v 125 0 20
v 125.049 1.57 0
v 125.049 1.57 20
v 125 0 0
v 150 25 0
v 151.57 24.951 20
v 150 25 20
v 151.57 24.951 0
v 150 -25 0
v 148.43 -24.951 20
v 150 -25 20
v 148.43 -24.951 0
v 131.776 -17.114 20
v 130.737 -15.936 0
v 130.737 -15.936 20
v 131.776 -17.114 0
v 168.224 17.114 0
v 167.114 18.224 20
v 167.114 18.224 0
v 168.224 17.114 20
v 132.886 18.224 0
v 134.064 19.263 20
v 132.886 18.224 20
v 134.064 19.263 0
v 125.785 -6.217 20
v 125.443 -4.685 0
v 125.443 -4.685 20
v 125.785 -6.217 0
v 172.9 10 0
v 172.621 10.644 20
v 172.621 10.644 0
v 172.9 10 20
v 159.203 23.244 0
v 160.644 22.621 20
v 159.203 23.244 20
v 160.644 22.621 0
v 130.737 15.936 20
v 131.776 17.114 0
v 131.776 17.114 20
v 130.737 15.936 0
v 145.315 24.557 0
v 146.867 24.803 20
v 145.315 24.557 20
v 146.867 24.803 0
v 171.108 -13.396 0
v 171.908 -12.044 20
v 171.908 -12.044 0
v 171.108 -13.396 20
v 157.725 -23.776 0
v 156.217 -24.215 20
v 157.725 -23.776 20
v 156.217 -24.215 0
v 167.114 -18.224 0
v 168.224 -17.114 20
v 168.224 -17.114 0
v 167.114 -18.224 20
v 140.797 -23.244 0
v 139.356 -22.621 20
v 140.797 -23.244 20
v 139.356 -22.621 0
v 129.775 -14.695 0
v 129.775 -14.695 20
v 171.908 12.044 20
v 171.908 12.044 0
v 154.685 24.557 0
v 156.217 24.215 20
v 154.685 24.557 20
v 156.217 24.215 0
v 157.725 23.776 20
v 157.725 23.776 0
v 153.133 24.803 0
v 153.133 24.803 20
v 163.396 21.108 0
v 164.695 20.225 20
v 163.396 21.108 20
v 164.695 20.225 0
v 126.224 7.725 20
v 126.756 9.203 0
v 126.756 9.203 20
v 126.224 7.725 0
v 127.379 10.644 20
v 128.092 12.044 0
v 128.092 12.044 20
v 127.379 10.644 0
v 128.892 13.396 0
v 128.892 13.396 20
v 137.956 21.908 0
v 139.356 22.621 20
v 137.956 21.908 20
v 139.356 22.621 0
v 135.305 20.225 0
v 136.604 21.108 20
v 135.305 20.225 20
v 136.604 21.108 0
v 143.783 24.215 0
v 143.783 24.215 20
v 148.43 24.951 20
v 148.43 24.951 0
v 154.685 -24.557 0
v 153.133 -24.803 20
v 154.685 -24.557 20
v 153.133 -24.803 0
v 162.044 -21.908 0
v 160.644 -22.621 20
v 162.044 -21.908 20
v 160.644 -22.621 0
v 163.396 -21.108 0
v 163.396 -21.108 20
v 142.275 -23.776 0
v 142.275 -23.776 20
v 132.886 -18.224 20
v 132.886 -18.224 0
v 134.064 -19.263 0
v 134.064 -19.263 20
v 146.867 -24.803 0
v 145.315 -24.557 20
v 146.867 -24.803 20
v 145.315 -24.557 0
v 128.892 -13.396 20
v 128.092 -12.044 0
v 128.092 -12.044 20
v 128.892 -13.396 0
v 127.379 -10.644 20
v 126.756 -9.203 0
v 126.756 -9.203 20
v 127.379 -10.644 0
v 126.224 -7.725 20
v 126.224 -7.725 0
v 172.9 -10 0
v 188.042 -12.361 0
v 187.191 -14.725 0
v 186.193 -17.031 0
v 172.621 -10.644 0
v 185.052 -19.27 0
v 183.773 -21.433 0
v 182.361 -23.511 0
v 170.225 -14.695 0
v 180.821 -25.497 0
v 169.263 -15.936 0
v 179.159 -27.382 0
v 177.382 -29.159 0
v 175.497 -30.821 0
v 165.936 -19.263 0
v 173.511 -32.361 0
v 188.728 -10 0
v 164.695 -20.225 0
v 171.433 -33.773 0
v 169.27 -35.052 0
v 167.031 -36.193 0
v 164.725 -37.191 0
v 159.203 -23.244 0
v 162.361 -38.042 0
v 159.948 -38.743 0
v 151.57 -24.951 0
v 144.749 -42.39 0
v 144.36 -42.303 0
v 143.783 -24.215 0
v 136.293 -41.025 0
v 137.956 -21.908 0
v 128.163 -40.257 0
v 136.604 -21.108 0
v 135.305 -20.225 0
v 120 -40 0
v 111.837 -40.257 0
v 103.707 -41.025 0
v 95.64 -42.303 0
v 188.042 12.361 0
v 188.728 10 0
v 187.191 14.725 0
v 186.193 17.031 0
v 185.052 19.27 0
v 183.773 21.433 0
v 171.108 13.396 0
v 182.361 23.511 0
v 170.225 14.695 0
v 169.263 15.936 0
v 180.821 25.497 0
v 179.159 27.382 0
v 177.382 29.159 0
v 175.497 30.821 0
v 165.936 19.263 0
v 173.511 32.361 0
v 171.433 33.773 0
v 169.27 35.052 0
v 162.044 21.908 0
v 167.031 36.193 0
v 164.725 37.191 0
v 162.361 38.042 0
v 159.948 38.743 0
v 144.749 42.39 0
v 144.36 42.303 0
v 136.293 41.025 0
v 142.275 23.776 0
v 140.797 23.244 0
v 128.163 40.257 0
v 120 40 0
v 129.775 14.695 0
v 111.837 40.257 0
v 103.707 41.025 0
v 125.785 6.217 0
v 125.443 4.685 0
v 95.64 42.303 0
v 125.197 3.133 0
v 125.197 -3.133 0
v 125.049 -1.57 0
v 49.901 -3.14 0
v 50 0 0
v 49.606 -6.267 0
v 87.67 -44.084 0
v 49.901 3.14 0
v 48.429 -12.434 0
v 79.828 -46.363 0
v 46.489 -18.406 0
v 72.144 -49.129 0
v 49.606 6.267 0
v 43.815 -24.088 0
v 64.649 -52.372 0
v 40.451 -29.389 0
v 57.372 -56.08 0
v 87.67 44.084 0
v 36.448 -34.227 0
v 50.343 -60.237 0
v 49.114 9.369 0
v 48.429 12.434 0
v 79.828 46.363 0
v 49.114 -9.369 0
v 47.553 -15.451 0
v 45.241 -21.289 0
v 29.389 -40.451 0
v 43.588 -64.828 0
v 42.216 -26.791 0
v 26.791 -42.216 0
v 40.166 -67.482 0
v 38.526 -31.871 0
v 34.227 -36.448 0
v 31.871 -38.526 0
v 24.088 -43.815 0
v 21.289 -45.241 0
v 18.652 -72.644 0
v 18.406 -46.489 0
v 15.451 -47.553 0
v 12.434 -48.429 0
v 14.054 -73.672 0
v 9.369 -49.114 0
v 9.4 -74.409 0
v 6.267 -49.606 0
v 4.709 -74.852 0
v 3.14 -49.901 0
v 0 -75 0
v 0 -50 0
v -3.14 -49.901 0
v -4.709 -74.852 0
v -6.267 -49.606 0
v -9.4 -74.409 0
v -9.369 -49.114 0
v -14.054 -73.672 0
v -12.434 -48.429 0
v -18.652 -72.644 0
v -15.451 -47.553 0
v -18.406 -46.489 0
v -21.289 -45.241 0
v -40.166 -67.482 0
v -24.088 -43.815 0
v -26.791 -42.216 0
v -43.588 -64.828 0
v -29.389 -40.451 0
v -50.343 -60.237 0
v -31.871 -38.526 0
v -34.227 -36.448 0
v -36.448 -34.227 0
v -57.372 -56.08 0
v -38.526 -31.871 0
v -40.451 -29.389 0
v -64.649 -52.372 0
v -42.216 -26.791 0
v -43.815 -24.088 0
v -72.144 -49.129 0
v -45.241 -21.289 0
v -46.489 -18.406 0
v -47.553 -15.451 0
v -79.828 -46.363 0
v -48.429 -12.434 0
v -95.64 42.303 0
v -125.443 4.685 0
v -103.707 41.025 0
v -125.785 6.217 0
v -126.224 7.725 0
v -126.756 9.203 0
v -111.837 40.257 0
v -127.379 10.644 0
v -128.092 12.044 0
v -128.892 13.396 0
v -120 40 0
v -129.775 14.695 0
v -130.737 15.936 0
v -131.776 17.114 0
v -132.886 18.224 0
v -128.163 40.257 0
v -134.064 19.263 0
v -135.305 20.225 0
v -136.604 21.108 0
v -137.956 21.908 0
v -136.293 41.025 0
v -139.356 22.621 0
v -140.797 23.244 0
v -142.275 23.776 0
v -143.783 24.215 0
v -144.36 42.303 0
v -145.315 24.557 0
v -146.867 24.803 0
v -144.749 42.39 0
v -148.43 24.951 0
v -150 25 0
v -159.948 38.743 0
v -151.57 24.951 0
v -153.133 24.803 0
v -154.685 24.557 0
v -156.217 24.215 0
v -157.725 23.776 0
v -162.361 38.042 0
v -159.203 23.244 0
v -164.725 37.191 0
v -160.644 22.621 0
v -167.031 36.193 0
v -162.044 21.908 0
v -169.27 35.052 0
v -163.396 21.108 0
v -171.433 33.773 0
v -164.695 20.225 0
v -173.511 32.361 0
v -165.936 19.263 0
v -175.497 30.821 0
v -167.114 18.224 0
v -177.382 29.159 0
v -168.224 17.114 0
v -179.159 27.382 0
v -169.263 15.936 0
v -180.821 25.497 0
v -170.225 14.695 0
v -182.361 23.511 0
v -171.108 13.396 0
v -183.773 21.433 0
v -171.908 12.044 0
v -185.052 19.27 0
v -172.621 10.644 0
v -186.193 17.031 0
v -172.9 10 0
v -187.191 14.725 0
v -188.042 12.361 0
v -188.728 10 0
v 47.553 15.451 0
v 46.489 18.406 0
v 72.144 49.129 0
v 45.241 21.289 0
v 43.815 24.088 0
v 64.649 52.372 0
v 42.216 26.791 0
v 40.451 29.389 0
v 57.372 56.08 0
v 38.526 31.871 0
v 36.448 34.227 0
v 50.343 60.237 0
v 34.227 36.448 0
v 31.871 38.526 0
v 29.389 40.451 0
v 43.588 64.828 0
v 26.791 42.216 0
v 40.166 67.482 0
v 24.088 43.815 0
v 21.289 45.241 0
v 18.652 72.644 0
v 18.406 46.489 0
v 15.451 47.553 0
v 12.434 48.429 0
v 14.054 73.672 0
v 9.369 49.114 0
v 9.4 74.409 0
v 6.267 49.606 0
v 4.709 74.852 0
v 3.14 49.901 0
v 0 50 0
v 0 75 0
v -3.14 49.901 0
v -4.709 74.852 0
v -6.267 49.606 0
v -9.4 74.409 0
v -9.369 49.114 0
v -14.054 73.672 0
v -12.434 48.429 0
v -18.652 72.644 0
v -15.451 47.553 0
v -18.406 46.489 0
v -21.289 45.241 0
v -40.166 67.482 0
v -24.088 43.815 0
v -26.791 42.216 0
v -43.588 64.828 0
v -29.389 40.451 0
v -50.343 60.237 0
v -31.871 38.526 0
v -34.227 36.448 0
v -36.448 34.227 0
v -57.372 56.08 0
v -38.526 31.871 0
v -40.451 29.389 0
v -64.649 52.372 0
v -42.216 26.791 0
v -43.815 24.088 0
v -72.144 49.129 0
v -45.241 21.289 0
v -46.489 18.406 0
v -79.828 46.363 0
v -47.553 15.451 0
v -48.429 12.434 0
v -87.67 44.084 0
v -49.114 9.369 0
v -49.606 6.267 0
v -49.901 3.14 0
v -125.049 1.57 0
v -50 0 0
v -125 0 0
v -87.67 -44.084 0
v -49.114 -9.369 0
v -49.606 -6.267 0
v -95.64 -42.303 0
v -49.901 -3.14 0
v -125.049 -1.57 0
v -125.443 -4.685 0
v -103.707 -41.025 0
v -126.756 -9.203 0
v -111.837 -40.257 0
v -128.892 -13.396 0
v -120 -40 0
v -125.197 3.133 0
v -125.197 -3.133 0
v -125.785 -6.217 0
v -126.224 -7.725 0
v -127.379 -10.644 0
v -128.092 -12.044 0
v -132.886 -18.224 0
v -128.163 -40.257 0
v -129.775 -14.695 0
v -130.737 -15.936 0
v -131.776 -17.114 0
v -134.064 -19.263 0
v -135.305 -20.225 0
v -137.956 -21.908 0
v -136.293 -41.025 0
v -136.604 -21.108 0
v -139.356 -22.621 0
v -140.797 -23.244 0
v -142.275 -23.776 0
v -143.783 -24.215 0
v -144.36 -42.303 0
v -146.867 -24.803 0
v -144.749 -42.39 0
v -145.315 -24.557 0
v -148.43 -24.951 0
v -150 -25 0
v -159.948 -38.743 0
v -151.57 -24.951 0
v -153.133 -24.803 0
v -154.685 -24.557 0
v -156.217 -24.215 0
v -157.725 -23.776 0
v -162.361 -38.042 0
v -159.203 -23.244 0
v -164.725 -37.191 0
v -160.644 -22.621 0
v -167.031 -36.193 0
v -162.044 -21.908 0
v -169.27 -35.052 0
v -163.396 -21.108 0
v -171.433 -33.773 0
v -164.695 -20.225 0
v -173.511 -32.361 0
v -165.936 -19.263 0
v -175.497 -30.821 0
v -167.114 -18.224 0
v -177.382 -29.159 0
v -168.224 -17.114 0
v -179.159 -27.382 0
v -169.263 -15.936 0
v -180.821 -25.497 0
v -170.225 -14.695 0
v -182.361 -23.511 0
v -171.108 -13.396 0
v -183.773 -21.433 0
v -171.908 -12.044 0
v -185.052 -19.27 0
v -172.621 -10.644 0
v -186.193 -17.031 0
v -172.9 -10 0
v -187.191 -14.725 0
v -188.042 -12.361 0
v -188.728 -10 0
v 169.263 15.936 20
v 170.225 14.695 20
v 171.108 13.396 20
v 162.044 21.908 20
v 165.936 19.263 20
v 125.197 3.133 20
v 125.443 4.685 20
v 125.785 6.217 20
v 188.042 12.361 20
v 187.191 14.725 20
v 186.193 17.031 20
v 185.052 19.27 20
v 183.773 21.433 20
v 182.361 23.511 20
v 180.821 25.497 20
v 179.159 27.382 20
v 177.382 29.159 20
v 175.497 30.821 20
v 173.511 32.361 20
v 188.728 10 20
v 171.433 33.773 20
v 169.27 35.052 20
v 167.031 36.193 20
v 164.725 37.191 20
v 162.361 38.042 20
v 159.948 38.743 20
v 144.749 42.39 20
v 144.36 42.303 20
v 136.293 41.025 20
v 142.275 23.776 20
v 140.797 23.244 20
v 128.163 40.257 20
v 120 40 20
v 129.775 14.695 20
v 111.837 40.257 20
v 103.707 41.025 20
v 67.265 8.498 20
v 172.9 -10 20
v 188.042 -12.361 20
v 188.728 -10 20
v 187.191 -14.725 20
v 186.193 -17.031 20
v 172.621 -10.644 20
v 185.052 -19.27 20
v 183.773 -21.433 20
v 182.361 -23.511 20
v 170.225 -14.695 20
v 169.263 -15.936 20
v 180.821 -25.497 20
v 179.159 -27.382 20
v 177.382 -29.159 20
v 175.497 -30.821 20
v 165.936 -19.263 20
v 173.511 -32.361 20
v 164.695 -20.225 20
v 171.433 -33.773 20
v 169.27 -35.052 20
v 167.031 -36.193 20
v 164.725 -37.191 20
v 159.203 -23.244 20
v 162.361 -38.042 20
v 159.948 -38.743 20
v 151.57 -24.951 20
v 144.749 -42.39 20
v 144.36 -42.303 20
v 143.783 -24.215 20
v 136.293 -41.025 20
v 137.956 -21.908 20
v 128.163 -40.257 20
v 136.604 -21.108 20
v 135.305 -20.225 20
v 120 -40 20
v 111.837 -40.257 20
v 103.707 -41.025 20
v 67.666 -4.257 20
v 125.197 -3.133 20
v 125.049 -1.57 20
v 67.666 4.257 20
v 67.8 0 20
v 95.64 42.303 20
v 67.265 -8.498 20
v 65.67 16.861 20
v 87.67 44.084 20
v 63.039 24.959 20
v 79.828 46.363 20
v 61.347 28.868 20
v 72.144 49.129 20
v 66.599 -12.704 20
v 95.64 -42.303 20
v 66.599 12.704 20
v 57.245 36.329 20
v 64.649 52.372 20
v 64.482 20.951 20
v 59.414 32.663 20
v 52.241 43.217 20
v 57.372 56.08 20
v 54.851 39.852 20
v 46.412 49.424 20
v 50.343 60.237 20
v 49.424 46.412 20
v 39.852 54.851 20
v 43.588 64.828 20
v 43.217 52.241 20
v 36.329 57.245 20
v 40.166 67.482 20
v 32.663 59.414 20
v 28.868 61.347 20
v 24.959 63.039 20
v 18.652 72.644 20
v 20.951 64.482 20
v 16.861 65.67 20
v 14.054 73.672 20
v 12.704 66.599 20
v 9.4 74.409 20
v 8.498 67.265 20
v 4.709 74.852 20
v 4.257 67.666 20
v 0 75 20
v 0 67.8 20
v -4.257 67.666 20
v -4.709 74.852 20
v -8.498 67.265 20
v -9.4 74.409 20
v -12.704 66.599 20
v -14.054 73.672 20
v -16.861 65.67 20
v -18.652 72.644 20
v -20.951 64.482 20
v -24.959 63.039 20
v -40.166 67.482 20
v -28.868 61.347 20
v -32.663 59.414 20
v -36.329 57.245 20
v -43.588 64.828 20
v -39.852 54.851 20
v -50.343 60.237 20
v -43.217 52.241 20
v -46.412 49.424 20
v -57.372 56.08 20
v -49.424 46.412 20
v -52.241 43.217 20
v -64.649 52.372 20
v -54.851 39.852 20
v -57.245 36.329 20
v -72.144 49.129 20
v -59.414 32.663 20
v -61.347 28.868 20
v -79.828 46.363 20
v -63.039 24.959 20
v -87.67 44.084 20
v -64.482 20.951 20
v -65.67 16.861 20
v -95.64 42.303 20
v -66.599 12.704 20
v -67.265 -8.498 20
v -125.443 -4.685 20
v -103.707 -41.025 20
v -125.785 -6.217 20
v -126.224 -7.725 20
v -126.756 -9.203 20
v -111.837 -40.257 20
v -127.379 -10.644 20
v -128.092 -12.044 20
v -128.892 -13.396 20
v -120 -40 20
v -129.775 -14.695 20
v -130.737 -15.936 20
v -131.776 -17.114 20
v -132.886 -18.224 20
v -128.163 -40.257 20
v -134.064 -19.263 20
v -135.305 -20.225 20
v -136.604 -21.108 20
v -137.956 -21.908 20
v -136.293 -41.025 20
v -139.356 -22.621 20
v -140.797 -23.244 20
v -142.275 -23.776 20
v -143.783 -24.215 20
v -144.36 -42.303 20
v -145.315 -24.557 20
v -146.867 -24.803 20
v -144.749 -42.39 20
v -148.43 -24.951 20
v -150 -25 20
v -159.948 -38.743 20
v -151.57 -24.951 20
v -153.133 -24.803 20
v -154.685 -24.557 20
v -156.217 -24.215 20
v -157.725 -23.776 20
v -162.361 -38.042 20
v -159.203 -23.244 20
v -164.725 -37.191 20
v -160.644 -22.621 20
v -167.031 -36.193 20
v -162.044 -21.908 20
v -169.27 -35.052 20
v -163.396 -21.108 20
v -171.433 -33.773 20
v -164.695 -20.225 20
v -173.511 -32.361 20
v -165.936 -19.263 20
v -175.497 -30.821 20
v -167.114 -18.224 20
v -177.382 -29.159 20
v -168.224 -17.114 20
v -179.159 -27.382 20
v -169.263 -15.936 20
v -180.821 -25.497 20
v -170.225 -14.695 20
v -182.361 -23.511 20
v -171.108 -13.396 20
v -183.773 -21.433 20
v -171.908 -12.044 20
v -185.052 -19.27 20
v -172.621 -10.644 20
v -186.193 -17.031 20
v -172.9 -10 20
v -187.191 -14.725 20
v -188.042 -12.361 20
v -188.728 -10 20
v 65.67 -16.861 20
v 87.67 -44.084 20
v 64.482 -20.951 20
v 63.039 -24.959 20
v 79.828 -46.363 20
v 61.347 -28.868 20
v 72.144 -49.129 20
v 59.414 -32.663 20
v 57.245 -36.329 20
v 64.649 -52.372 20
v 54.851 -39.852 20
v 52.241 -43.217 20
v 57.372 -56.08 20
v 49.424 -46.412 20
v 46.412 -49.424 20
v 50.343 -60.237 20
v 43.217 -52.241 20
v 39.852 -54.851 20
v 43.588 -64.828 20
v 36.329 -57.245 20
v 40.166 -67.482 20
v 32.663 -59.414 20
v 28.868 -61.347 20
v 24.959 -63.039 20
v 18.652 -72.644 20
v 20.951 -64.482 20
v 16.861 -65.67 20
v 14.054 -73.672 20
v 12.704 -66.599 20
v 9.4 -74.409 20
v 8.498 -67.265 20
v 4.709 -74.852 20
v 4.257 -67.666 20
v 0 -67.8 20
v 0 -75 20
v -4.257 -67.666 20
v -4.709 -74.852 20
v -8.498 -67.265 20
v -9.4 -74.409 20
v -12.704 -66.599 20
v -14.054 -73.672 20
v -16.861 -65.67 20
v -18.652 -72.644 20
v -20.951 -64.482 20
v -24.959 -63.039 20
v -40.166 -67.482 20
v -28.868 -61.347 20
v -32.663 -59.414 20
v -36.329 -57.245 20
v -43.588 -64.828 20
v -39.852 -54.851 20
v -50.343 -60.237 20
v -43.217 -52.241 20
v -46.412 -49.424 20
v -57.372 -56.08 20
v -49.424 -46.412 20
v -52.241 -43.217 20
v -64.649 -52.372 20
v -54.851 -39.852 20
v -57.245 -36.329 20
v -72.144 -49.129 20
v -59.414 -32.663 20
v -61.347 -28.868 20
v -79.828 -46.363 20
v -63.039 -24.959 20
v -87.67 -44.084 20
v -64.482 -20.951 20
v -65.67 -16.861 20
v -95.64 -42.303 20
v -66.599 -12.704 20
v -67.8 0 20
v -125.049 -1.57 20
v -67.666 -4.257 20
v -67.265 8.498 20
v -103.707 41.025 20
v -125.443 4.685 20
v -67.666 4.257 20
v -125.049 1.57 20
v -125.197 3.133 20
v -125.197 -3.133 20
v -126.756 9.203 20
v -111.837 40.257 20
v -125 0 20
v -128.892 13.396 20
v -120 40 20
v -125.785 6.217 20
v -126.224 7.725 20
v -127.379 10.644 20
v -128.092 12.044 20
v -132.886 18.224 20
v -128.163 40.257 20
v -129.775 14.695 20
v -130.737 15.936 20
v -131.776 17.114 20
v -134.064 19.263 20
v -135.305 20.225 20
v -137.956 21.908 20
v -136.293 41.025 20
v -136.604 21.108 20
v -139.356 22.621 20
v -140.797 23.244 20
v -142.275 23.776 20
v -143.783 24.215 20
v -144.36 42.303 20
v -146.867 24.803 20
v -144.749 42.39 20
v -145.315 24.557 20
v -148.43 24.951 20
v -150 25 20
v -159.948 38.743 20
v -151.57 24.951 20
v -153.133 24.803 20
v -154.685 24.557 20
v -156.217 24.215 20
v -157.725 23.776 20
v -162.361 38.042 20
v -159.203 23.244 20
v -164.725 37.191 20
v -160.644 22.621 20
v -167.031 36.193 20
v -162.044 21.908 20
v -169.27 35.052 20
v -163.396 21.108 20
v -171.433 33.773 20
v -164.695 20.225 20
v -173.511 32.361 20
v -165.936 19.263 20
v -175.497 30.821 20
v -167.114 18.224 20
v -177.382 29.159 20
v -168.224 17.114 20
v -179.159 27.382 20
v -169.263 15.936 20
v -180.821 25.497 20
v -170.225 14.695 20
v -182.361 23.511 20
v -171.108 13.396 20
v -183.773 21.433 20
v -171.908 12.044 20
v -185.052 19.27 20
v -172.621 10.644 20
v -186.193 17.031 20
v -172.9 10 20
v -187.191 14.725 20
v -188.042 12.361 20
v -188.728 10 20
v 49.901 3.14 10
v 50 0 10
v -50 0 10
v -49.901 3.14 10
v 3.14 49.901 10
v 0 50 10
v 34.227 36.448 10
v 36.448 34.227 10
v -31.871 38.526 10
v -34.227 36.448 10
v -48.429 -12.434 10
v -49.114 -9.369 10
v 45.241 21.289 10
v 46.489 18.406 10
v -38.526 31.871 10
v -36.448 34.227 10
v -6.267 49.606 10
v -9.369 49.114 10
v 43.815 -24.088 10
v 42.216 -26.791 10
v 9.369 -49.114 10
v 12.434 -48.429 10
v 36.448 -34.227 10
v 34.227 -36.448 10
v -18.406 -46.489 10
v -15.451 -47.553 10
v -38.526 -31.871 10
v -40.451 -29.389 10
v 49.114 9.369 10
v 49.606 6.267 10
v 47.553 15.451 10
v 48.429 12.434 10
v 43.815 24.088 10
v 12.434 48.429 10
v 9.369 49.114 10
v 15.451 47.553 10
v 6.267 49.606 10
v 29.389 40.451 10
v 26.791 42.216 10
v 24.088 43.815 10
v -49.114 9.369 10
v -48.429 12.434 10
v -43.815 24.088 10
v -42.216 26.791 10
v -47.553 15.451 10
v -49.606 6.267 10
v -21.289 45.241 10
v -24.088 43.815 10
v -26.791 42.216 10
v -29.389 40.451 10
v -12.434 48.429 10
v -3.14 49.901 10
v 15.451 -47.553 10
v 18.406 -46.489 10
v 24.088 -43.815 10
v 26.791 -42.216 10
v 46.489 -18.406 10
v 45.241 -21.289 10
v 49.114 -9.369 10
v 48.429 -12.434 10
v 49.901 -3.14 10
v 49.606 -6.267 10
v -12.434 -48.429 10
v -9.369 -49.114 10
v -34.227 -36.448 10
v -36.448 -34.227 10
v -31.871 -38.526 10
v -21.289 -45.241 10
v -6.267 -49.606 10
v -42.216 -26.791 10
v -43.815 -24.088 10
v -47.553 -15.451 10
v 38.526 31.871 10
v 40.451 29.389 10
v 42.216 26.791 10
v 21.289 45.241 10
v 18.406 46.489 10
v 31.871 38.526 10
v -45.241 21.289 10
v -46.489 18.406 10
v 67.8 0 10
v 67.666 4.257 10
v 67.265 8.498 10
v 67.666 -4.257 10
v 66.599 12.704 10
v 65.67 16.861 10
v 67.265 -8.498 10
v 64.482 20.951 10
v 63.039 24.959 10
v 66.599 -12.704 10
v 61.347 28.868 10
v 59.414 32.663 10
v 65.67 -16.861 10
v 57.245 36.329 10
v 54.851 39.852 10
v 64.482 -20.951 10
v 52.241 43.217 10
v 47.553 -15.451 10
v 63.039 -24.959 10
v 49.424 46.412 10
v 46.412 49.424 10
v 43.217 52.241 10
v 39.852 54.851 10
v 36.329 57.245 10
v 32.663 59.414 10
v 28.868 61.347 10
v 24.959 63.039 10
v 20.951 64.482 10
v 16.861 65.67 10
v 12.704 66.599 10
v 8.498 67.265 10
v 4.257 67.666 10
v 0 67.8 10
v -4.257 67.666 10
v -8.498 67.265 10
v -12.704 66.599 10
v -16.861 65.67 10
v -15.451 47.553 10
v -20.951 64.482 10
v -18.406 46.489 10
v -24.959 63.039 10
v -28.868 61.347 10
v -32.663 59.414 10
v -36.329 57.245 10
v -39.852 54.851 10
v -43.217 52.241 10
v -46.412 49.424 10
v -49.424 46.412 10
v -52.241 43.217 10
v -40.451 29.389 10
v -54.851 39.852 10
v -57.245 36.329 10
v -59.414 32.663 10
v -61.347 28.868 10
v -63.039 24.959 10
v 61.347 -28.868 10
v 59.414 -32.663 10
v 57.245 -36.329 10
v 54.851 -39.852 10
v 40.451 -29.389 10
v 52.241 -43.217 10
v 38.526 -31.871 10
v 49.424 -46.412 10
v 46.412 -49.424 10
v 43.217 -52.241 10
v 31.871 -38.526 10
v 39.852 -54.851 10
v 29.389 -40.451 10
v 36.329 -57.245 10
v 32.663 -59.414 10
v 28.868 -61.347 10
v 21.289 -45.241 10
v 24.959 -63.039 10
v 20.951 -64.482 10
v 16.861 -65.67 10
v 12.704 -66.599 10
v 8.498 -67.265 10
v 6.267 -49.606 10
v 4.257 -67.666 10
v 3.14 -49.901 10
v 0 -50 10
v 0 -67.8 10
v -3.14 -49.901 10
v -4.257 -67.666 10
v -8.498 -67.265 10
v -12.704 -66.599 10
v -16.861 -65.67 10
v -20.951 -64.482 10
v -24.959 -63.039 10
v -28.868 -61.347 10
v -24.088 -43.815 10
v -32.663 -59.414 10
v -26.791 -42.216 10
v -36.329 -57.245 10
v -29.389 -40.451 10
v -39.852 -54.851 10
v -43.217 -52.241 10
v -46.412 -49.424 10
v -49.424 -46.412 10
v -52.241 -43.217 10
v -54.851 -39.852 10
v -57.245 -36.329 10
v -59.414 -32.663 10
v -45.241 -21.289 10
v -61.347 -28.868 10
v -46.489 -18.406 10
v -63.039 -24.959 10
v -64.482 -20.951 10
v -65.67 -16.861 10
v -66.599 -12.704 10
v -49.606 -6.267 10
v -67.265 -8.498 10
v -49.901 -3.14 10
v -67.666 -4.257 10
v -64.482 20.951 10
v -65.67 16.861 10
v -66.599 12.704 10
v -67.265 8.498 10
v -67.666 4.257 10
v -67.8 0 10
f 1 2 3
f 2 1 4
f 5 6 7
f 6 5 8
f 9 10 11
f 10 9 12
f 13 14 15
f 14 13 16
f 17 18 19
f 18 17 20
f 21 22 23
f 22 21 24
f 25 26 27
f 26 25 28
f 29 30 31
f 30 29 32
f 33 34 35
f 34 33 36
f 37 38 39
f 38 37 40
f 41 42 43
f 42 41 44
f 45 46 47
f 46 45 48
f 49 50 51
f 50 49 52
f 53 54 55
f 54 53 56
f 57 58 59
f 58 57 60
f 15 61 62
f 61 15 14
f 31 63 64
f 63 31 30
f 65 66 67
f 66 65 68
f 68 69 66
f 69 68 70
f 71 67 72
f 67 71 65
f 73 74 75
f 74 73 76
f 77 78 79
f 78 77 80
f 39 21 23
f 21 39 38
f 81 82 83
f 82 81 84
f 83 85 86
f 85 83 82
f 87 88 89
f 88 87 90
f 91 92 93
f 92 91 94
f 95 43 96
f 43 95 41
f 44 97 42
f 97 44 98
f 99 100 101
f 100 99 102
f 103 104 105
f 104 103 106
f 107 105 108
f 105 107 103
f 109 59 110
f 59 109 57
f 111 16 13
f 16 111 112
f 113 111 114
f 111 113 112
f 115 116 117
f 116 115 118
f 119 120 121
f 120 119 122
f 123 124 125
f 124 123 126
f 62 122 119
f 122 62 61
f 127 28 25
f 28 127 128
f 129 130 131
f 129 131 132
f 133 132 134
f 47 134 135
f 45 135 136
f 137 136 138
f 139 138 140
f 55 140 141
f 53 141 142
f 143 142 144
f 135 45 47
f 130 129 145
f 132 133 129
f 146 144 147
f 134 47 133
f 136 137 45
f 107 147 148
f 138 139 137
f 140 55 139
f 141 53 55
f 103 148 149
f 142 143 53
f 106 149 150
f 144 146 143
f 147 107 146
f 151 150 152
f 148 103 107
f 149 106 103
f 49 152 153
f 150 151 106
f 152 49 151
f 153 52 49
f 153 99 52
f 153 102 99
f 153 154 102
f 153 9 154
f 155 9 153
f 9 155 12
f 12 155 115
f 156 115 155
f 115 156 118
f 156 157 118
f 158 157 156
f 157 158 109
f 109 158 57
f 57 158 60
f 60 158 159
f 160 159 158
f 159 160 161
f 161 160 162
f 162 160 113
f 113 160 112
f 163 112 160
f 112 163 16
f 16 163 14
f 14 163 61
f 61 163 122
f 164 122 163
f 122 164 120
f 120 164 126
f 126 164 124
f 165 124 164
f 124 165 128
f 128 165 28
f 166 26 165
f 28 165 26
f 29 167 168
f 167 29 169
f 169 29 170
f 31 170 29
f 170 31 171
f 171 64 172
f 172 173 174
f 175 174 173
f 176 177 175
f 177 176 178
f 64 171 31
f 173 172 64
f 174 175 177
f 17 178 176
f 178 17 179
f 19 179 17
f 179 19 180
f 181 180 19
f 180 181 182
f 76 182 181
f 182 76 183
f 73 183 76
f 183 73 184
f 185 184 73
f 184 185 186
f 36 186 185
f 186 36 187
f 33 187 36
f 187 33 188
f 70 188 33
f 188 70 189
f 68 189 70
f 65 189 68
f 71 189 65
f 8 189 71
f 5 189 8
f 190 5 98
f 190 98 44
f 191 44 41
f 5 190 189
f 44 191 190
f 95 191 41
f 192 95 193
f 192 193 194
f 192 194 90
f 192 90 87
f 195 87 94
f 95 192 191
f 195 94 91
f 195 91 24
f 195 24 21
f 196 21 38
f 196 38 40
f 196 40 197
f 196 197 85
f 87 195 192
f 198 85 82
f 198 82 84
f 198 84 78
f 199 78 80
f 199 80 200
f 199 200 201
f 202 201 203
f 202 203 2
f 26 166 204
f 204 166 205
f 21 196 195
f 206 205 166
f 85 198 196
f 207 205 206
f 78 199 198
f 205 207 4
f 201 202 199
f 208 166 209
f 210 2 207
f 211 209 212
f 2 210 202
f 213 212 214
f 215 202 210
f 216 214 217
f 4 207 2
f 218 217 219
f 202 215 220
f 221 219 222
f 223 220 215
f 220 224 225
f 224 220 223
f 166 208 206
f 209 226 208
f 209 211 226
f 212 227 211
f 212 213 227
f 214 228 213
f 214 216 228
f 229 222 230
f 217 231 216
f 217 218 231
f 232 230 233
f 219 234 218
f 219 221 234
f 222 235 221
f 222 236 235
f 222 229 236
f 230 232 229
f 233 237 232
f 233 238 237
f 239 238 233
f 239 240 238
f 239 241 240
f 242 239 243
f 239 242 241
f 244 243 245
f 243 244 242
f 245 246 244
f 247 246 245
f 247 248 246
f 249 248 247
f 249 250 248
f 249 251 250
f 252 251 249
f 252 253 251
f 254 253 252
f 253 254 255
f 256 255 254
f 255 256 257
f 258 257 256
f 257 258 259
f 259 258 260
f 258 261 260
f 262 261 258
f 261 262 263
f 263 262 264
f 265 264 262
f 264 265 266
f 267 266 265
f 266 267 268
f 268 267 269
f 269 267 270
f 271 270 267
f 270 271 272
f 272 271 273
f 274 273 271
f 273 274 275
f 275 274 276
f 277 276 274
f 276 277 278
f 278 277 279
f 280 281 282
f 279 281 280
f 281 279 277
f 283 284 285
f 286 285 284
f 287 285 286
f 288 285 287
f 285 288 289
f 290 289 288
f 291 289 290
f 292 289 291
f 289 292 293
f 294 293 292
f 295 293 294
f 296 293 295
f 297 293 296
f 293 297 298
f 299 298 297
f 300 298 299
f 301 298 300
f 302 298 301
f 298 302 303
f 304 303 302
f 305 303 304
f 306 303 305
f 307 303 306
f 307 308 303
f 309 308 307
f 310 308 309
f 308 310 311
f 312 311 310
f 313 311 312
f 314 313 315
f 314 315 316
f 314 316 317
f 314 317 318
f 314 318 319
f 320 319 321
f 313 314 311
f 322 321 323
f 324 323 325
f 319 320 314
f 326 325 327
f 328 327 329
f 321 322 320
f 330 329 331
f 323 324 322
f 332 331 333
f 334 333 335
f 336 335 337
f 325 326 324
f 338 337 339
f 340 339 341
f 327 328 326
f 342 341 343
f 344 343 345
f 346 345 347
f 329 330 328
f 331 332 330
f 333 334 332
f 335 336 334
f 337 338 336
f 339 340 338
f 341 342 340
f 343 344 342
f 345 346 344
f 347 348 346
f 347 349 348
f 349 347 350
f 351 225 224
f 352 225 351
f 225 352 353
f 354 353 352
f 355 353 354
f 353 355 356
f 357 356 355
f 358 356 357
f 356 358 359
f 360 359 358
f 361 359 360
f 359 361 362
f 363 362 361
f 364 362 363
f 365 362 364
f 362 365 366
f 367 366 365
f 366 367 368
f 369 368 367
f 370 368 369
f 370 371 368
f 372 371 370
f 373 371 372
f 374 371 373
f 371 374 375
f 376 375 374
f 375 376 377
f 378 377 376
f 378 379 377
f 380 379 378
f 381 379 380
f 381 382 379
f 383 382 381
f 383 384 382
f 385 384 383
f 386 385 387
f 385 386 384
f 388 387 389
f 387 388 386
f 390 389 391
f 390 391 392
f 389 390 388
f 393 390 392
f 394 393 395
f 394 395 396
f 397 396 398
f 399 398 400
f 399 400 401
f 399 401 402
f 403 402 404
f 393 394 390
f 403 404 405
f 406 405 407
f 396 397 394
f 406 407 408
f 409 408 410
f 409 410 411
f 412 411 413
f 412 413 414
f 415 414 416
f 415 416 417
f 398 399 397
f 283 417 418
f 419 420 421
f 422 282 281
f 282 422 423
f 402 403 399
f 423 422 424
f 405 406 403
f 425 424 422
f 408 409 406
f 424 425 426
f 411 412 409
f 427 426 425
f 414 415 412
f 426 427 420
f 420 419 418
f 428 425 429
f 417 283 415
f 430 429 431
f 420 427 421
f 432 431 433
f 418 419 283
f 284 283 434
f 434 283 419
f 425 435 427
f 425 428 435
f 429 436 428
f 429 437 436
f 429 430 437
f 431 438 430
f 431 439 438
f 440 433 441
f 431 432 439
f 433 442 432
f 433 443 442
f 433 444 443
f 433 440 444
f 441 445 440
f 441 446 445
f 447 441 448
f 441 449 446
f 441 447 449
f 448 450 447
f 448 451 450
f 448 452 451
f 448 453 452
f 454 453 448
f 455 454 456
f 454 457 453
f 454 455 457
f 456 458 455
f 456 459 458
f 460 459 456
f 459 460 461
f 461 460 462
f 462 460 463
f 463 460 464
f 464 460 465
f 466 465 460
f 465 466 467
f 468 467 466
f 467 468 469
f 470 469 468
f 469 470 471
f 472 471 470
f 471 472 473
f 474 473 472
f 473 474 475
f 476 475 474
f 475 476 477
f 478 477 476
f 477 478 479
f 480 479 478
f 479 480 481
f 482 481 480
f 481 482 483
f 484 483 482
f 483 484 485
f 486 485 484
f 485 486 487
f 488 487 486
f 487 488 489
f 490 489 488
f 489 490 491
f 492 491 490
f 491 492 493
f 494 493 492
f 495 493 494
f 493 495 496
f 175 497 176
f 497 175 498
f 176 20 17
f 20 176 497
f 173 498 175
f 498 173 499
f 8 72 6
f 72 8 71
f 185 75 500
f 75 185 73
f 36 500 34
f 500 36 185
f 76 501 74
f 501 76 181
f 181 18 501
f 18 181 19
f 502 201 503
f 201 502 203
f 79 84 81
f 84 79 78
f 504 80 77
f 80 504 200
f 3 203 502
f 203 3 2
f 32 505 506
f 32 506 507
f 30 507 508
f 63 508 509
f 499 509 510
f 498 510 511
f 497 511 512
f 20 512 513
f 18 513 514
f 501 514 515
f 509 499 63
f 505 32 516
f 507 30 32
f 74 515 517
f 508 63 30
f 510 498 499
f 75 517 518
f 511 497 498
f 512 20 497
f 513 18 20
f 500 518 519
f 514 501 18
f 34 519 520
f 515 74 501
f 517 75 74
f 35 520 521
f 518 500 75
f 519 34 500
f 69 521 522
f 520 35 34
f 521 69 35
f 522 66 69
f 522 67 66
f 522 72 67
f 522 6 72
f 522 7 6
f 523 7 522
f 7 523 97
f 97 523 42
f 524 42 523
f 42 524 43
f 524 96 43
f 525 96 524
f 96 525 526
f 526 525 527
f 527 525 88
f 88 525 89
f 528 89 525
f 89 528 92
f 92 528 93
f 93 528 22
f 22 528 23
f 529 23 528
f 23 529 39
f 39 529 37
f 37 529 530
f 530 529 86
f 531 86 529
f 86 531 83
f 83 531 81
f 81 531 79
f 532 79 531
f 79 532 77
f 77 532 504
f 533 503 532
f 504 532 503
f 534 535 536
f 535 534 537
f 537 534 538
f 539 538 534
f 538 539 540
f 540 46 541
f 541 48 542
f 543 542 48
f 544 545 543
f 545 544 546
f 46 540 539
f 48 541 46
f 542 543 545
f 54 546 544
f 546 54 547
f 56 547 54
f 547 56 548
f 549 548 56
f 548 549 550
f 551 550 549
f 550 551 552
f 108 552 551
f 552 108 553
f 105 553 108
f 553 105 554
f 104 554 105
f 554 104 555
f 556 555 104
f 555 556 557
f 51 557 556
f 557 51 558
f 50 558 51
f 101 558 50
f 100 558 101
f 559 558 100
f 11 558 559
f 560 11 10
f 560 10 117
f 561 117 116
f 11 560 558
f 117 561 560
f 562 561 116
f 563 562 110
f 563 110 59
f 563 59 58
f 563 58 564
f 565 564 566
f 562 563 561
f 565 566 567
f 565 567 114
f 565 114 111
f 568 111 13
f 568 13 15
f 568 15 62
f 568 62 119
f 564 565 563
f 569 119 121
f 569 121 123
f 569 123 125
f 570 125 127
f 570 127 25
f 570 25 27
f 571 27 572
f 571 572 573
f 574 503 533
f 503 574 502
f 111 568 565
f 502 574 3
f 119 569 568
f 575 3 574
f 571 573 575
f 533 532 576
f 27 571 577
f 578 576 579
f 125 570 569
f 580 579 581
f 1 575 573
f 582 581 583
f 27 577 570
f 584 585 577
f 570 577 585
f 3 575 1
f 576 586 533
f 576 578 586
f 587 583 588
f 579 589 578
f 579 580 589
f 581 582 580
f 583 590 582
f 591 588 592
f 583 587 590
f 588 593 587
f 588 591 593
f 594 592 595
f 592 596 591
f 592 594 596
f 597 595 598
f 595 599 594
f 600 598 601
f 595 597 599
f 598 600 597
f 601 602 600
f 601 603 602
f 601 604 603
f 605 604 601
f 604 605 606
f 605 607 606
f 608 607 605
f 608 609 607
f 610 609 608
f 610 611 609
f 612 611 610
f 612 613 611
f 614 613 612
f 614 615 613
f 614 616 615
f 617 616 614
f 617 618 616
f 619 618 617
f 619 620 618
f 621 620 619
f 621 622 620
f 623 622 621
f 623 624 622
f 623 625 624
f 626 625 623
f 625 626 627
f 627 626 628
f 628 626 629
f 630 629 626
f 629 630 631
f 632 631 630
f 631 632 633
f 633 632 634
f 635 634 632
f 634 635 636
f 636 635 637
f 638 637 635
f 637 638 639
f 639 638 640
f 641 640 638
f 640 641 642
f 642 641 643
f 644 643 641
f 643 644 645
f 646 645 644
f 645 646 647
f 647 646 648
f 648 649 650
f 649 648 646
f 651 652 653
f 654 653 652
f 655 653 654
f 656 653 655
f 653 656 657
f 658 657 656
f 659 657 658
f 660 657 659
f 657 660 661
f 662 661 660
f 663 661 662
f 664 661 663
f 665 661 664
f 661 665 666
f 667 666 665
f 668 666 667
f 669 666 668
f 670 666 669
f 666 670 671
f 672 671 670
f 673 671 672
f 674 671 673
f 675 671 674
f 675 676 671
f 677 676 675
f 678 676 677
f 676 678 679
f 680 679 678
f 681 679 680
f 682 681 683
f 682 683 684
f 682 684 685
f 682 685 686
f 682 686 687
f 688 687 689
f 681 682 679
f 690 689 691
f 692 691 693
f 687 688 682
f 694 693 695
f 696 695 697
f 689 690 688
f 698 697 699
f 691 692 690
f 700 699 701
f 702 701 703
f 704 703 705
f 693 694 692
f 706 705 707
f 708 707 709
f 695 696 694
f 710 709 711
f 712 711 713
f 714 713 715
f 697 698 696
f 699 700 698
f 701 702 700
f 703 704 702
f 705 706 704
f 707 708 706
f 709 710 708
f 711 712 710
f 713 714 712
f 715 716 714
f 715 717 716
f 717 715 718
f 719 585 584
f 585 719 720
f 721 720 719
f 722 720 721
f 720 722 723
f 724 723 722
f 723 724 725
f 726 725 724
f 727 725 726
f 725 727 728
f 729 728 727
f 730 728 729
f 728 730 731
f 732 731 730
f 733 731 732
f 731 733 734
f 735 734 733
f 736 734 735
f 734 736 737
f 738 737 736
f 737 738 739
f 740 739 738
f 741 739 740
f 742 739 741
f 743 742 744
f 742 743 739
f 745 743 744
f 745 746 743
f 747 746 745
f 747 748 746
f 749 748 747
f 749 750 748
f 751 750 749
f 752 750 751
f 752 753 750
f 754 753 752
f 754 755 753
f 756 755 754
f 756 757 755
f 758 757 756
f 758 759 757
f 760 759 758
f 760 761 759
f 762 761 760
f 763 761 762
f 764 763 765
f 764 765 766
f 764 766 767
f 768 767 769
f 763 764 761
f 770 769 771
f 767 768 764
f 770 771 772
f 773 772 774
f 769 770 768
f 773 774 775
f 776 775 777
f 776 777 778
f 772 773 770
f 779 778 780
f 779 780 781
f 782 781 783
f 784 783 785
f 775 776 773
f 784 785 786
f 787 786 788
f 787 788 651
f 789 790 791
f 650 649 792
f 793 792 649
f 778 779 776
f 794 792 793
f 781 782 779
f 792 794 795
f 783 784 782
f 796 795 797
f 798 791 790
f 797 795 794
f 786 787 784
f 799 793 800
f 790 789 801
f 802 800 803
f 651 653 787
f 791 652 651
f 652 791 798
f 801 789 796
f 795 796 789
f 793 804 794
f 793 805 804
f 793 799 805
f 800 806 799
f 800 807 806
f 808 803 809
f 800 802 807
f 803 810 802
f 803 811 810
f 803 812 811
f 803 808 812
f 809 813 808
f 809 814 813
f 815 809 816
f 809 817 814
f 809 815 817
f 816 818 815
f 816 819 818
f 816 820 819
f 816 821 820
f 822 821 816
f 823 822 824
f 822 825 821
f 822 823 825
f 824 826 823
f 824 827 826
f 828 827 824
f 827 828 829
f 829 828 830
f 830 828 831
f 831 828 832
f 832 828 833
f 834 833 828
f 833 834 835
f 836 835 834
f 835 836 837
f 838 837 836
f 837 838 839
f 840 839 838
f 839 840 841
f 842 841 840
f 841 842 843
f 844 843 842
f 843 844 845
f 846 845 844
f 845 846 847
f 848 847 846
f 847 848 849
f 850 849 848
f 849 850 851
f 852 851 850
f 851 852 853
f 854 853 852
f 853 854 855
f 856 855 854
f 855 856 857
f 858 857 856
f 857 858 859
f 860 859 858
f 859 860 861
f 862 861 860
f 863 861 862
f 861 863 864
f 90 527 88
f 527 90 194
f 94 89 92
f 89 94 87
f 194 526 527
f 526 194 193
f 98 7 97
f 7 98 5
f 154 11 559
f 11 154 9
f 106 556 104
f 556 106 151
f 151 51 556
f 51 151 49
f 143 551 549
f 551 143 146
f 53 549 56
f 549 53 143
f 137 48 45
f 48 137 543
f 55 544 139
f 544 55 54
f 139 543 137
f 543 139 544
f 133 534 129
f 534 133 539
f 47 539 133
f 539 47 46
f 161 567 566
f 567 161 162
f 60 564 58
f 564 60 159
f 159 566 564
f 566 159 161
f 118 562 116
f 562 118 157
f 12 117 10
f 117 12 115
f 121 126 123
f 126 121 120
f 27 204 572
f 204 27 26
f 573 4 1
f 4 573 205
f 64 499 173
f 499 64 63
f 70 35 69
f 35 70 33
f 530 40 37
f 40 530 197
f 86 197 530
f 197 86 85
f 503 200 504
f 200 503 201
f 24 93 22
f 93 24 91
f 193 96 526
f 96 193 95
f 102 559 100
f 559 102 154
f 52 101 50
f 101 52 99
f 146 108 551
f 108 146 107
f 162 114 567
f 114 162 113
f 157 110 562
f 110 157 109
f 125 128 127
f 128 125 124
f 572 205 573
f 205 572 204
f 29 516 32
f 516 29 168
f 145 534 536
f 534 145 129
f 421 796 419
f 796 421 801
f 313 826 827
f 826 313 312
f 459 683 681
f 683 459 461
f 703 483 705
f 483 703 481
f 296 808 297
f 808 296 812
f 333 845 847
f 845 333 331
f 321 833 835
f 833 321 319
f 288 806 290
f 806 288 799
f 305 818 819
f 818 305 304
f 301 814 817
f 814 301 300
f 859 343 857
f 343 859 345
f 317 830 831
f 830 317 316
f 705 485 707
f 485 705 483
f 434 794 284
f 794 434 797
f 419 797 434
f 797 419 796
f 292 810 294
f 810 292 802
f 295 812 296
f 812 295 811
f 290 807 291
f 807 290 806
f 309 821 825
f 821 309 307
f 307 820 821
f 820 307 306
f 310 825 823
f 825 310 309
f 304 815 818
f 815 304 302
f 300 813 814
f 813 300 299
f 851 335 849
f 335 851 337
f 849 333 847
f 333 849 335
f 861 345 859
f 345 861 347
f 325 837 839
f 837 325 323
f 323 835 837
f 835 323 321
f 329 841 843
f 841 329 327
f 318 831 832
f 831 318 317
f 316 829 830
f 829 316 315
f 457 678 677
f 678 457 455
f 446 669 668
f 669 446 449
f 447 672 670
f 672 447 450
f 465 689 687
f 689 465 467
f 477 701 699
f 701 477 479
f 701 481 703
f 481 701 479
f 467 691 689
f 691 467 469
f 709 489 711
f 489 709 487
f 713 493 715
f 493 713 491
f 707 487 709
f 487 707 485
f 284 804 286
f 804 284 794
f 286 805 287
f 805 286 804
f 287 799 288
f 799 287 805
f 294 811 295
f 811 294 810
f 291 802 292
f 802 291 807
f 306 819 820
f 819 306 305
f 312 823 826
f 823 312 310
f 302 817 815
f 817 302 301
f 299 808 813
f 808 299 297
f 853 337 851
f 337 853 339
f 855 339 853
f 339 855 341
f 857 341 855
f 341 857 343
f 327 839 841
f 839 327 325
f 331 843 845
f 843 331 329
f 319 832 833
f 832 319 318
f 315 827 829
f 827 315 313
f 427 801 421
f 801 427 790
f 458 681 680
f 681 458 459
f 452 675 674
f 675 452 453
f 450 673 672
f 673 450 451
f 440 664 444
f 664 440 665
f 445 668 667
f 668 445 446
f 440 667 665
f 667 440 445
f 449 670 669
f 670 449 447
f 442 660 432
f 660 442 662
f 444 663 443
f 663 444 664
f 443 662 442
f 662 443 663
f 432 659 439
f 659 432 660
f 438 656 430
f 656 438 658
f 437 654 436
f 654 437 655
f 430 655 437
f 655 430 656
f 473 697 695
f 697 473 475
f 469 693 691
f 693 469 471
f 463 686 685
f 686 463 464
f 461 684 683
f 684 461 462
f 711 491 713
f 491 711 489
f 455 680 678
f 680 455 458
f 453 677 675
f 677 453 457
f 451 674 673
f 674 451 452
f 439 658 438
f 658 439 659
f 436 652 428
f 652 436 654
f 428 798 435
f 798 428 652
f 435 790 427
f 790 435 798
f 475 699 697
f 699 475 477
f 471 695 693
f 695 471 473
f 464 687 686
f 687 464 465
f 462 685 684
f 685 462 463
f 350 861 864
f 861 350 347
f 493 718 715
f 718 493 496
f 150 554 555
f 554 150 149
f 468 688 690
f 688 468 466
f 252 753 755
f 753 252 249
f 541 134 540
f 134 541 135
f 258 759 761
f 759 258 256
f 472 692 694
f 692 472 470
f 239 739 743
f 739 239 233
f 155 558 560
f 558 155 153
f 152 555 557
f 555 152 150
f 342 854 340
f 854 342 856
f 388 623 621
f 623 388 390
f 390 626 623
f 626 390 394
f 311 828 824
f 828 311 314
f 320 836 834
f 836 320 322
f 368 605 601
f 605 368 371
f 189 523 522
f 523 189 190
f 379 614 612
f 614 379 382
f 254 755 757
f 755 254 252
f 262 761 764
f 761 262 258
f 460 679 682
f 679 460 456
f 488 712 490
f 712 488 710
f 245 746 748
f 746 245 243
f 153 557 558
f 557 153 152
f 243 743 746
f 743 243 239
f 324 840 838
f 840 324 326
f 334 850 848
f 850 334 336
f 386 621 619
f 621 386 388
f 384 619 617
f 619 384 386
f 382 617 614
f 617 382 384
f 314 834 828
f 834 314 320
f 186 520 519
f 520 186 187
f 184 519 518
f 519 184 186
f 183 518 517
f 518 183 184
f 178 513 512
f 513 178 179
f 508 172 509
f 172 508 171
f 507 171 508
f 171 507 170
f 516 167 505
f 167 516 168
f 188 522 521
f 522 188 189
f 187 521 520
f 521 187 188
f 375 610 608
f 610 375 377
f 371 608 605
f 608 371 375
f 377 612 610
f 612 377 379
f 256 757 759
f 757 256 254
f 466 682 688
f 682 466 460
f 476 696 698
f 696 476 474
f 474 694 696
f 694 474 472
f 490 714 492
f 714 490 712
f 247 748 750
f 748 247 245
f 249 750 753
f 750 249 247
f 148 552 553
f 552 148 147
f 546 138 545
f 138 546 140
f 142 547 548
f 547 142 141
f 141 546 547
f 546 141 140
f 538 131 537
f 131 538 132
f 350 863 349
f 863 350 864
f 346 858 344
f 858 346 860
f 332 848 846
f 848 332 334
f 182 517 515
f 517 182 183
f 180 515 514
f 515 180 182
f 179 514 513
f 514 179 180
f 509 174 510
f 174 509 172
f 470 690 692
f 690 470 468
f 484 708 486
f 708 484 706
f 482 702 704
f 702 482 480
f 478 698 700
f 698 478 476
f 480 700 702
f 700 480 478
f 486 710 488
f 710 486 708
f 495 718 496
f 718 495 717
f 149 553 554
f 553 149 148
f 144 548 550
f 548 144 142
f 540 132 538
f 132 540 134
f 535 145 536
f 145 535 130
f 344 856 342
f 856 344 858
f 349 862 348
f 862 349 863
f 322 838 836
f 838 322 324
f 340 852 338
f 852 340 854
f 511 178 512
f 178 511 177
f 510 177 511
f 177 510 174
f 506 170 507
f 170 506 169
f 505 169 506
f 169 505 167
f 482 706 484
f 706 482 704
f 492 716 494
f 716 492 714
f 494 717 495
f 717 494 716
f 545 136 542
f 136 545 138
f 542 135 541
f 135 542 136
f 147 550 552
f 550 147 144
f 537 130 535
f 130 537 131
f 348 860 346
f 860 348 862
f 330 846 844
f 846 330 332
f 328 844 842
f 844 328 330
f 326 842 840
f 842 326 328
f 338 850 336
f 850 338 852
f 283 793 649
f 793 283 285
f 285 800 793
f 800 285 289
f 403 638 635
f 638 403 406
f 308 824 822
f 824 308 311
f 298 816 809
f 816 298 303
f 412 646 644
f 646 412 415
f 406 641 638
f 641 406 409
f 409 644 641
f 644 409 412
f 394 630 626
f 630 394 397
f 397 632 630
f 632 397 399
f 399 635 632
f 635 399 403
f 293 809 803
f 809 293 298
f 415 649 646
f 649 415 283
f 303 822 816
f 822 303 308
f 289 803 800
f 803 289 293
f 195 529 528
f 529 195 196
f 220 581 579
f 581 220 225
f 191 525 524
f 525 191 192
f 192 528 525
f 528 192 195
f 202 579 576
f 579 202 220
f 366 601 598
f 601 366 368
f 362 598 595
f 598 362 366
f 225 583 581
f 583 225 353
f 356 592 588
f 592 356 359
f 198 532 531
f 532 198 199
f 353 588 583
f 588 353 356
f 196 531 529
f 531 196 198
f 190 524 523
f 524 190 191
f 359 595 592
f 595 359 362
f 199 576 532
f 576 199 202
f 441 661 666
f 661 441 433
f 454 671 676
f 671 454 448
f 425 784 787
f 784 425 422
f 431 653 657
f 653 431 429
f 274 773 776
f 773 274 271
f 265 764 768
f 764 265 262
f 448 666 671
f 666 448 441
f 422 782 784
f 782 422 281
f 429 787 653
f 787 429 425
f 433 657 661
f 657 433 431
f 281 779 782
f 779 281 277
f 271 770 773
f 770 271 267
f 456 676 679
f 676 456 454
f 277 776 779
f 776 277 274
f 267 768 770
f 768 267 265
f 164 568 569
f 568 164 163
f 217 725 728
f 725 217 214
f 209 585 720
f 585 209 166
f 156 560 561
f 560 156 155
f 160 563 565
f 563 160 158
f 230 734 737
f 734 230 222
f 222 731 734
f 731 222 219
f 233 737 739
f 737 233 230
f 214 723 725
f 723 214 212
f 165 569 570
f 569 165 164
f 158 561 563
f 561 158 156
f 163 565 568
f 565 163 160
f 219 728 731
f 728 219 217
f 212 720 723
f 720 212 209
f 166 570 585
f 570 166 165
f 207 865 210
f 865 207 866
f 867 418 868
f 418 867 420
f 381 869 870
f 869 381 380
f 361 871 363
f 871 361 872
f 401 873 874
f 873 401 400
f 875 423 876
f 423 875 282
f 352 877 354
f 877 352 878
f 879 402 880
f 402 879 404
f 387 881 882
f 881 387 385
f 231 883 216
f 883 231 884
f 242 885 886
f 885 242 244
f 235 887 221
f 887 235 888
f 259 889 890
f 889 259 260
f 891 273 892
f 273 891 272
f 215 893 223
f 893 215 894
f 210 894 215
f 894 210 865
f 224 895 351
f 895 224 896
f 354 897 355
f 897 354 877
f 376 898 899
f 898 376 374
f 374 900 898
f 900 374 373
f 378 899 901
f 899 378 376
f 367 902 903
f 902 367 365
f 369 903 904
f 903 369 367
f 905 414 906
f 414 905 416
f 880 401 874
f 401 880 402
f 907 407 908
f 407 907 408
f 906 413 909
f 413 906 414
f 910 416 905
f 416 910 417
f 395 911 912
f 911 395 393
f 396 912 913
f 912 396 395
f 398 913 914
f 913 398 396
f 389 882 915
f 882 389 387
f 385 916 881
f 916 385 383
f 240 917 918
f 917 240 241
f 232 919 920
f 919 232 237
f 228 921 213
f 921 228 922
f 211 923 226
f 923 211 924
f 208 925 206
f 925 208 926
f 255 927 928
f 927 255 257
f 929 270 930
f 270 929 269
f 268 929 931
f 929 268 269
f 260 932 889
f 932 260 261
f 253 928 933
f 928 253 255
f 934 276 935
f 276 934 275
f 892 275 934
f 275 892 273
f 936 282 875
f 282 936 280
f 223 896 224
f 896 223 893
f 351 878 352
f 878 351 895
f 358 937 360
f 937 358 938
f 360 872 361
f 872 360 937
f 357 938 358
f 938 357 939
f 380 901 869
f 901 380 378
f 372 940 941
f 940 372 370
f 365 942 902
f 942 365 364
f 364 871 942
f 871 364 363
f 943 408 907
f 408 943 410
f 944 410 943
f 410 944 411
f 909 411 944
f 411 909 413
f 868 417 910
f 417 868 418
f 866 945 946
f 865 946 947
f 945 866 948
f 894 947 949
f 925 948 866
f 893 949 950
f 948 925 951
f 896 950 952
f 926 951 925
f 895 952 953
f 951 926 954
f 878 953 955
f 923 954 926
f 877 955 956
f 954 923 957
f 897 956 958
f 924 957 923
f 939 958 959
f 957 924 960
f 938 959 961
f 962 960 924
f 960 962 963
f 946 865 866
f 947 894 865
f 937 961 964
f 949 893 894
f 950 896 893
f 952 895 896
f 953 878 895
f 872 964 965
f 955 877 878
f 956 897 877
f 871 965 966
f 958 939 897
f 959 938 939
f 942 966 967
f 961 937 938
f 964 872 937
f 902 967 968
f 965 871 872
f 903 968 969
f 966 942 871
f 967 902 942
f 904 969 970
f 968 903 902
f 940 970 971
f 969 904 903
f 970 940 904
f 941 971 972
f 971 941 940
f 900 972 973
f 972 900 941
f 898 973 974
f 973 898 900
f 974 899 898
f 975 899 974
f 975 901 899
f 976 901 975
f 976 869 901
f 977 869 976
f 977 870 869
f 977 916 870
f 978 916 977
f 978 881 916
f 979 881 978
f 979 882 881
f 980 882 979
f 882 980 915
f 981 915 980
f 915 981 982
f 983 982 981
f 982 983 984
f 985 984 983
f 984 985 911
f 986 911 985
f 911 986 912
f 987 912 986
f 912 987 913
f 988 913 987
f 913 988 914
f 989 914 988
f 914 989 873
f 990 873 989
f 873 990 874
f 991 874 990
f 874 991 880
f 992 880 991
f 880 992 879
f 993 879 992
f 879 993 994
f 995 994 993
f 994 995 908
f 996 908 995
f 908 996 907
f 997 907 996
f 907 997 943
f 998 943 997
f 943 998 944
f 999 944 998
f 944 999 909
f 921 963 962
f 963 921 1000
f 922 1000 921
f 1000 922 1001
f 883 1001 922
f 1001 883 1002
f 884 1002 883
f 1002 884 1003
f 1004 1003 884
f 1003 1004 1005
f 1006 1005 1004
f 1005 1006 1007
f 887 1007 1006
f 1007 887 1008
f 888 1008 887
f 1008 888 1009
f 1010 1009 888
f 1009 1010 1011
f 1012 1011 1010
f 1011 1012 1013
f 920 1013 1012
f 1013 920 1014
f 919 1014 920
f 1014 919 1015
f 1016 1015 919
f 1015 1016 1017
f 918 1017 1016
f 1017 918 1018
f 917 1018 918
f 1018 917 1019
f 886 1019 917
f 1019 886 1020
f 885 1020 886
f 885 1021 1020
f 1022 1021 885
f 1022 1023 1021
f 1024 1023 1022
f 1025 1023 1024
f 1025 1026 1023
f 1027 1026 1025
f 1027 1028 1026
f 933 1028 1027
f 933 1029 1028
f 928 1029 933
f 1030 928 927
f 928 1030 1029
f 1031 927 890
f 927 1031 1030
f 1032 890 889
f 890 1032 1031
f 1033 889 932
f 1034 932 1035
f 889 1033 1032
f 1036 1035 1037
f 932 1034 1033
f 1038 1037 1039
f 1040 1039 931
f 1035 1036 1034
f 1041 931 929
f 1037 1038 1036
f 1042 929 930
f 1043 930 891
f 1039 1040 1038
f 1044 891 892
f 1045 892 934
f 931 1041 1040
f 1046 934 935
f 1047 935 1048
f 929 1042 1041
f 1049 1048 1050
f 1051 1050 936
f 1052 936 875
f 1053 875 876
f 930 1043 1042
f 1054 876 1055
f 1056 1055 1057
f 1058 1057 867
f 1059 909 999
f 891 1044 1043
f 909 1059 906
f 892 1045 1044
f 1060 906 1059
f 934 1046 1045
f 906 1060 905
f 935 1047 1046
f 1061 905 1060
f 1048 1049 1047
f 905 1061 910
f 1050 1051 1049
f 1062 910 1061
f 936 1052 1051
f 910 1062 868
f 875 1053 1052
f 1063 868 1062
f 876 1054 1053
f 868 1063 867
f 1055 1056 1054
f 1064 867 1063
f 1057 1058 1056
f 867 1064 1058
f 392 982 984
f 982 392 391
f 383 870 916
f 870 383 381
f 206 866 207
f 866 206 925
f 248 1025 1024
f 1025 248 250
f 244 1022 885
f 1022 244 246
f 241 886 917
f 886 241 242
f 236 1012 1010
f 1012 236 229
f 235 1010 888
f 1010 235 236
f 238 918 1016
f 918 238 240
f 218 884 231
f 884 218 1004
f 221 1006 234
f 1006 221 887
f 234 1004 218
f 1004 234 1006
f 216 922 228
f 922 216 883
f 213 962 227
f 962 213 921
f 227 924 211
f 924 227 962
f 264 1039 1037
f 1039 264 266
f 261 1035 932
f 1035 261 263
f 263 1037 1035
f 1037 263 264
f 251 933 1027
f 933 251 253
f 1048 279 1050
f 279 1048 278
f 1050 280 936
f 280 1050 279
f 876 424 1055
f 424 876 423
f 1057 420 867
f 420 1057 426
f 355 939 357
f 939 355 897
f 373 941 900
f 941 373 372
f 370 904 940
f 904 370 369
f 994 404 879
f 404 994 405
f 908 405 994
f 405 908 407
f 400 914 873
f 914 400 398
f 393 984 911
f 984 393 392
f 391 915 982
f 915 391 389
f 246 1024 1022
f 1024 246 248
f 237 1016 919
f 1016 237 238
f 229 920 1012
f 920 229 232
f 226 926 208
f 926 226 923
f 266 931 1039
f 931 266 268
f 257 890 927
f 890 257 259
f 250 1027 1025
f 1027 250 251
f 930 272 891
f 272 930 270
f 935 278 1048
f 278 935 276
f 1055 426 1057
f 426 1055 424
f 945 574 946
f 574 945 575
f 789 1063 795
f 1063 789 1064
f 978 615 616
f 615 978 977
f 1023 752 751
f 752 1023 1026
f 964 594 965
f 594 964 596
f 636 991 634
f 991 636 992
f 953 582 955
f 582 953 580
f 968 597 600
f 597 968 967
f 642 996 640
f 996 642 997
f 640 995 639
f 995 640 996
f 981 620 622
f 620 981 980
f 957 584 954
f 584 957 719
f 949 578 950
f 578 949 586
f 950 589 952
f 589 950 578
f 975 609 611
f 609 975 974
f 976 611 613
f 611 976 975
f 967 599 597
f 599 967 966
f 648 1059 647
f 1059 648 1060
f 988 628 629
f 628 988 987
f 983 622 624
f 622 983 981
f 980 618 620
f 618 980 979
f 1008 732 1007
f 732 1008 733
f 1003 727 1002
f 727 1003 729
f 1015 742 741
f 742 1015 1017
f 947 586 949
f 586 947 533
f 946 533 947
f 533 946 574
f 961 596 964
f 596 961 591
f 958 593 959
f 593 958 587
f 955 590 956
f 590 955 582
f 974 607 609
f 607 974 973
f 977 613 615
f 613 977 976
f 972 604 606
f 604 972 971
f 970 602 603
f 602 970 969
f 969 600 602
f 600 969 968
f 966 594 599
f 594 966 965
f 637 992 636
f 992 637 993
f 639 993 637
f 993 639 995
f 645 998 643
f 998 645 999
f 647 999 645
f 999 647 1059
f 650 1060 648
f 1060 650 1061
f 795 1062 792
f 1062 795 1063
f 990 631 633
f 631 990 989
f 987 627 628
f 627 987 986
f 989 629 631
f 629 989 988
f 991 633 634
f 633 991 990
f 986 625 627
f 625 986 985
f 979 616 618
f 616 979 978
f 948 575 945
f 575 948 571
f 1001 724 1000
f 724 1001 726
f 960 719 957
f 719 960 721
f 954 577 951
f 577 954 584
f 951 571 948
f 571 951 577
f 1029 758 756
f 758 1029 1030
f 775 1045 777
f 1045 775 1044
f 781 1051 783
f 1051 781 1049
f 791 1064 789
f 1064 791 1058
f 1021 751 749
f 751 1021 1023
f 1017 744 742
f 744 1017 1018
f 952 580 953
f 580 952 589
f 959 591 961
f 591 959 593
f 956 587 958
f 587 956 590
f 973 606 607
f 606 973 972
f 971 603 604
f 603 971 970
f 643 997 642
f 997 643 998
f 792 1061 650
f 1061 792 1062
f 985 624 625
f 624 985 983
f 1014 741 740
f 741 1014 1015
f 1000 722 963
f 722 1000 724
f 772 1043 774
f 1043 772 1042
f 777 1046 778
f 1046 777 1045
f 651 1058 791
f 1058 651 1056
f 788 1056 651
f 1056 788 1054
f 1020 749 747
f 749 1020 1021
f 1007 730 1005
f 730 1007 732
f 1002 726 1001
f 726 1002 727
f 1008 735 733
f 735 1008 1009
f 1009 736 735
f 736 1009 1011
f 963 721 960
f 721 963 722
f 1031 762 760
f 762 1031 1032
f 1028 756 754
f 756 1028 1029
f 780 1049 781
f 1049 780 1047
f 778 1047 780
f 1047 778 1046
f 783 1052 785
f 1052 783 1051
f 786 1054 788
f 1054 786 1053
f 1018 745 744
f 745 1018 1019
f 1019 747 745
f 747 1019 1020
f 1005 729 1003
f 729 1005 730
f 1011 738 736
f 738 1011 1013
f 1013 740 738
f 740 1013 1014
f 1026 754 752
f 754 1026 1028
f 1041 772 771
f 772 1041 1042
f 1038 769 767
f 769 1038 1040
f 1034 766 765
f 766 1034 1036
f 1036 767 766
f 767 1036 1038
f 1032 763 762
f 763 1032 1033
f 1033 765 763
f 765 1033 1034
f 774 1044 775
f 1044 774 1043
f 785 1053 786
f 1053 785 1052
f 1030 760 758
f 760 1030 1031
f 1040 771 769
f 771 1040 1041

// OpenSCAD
$fn = 100;

difference() {
    hull() {
    cylinder(20, 75, 75);
        translate([150,0,0]) cylinder(20, 40, 40);
        translate([-150,0,0]) cylinder(20, 40, 40);
    }
    
    // exteria curve (just estimated, not via mathimatic calculation
    exteria_circle_radius = 130;
    translate([-120,170, 0]) cylinder(20, exteria_circle_radius, exteria_circle_radius);
    translate([120,170, 0]) cylinder(20, exteria_circle_radius, exteria_circle_radius);
    translate([-120,-170, 0]) cylinder(20, exteria_circle_radius, exteria_circle_radius);
    translate([120,-170, 0]) cylinder(20, exteria_circle_radius, exteria_circle_radius);
    
    // middle holes
    cylinder(10, 50, 50);
    translate([0,0,10]) cylinder(10,135.6/2, 135.6/2);
    
    // edge holes
    translate([150,0,0]) {
    cylinder(20, 25, 25);
    translate([0,-10,0]) cube([50,20,20]);
    }
    translate([-150,0,0]) {
    cylinder(20, 25, 25);
    translate([-50,-10,0]) cube([50,20,20]); // use 50 instead of 40 to prevent edging
    }
}
